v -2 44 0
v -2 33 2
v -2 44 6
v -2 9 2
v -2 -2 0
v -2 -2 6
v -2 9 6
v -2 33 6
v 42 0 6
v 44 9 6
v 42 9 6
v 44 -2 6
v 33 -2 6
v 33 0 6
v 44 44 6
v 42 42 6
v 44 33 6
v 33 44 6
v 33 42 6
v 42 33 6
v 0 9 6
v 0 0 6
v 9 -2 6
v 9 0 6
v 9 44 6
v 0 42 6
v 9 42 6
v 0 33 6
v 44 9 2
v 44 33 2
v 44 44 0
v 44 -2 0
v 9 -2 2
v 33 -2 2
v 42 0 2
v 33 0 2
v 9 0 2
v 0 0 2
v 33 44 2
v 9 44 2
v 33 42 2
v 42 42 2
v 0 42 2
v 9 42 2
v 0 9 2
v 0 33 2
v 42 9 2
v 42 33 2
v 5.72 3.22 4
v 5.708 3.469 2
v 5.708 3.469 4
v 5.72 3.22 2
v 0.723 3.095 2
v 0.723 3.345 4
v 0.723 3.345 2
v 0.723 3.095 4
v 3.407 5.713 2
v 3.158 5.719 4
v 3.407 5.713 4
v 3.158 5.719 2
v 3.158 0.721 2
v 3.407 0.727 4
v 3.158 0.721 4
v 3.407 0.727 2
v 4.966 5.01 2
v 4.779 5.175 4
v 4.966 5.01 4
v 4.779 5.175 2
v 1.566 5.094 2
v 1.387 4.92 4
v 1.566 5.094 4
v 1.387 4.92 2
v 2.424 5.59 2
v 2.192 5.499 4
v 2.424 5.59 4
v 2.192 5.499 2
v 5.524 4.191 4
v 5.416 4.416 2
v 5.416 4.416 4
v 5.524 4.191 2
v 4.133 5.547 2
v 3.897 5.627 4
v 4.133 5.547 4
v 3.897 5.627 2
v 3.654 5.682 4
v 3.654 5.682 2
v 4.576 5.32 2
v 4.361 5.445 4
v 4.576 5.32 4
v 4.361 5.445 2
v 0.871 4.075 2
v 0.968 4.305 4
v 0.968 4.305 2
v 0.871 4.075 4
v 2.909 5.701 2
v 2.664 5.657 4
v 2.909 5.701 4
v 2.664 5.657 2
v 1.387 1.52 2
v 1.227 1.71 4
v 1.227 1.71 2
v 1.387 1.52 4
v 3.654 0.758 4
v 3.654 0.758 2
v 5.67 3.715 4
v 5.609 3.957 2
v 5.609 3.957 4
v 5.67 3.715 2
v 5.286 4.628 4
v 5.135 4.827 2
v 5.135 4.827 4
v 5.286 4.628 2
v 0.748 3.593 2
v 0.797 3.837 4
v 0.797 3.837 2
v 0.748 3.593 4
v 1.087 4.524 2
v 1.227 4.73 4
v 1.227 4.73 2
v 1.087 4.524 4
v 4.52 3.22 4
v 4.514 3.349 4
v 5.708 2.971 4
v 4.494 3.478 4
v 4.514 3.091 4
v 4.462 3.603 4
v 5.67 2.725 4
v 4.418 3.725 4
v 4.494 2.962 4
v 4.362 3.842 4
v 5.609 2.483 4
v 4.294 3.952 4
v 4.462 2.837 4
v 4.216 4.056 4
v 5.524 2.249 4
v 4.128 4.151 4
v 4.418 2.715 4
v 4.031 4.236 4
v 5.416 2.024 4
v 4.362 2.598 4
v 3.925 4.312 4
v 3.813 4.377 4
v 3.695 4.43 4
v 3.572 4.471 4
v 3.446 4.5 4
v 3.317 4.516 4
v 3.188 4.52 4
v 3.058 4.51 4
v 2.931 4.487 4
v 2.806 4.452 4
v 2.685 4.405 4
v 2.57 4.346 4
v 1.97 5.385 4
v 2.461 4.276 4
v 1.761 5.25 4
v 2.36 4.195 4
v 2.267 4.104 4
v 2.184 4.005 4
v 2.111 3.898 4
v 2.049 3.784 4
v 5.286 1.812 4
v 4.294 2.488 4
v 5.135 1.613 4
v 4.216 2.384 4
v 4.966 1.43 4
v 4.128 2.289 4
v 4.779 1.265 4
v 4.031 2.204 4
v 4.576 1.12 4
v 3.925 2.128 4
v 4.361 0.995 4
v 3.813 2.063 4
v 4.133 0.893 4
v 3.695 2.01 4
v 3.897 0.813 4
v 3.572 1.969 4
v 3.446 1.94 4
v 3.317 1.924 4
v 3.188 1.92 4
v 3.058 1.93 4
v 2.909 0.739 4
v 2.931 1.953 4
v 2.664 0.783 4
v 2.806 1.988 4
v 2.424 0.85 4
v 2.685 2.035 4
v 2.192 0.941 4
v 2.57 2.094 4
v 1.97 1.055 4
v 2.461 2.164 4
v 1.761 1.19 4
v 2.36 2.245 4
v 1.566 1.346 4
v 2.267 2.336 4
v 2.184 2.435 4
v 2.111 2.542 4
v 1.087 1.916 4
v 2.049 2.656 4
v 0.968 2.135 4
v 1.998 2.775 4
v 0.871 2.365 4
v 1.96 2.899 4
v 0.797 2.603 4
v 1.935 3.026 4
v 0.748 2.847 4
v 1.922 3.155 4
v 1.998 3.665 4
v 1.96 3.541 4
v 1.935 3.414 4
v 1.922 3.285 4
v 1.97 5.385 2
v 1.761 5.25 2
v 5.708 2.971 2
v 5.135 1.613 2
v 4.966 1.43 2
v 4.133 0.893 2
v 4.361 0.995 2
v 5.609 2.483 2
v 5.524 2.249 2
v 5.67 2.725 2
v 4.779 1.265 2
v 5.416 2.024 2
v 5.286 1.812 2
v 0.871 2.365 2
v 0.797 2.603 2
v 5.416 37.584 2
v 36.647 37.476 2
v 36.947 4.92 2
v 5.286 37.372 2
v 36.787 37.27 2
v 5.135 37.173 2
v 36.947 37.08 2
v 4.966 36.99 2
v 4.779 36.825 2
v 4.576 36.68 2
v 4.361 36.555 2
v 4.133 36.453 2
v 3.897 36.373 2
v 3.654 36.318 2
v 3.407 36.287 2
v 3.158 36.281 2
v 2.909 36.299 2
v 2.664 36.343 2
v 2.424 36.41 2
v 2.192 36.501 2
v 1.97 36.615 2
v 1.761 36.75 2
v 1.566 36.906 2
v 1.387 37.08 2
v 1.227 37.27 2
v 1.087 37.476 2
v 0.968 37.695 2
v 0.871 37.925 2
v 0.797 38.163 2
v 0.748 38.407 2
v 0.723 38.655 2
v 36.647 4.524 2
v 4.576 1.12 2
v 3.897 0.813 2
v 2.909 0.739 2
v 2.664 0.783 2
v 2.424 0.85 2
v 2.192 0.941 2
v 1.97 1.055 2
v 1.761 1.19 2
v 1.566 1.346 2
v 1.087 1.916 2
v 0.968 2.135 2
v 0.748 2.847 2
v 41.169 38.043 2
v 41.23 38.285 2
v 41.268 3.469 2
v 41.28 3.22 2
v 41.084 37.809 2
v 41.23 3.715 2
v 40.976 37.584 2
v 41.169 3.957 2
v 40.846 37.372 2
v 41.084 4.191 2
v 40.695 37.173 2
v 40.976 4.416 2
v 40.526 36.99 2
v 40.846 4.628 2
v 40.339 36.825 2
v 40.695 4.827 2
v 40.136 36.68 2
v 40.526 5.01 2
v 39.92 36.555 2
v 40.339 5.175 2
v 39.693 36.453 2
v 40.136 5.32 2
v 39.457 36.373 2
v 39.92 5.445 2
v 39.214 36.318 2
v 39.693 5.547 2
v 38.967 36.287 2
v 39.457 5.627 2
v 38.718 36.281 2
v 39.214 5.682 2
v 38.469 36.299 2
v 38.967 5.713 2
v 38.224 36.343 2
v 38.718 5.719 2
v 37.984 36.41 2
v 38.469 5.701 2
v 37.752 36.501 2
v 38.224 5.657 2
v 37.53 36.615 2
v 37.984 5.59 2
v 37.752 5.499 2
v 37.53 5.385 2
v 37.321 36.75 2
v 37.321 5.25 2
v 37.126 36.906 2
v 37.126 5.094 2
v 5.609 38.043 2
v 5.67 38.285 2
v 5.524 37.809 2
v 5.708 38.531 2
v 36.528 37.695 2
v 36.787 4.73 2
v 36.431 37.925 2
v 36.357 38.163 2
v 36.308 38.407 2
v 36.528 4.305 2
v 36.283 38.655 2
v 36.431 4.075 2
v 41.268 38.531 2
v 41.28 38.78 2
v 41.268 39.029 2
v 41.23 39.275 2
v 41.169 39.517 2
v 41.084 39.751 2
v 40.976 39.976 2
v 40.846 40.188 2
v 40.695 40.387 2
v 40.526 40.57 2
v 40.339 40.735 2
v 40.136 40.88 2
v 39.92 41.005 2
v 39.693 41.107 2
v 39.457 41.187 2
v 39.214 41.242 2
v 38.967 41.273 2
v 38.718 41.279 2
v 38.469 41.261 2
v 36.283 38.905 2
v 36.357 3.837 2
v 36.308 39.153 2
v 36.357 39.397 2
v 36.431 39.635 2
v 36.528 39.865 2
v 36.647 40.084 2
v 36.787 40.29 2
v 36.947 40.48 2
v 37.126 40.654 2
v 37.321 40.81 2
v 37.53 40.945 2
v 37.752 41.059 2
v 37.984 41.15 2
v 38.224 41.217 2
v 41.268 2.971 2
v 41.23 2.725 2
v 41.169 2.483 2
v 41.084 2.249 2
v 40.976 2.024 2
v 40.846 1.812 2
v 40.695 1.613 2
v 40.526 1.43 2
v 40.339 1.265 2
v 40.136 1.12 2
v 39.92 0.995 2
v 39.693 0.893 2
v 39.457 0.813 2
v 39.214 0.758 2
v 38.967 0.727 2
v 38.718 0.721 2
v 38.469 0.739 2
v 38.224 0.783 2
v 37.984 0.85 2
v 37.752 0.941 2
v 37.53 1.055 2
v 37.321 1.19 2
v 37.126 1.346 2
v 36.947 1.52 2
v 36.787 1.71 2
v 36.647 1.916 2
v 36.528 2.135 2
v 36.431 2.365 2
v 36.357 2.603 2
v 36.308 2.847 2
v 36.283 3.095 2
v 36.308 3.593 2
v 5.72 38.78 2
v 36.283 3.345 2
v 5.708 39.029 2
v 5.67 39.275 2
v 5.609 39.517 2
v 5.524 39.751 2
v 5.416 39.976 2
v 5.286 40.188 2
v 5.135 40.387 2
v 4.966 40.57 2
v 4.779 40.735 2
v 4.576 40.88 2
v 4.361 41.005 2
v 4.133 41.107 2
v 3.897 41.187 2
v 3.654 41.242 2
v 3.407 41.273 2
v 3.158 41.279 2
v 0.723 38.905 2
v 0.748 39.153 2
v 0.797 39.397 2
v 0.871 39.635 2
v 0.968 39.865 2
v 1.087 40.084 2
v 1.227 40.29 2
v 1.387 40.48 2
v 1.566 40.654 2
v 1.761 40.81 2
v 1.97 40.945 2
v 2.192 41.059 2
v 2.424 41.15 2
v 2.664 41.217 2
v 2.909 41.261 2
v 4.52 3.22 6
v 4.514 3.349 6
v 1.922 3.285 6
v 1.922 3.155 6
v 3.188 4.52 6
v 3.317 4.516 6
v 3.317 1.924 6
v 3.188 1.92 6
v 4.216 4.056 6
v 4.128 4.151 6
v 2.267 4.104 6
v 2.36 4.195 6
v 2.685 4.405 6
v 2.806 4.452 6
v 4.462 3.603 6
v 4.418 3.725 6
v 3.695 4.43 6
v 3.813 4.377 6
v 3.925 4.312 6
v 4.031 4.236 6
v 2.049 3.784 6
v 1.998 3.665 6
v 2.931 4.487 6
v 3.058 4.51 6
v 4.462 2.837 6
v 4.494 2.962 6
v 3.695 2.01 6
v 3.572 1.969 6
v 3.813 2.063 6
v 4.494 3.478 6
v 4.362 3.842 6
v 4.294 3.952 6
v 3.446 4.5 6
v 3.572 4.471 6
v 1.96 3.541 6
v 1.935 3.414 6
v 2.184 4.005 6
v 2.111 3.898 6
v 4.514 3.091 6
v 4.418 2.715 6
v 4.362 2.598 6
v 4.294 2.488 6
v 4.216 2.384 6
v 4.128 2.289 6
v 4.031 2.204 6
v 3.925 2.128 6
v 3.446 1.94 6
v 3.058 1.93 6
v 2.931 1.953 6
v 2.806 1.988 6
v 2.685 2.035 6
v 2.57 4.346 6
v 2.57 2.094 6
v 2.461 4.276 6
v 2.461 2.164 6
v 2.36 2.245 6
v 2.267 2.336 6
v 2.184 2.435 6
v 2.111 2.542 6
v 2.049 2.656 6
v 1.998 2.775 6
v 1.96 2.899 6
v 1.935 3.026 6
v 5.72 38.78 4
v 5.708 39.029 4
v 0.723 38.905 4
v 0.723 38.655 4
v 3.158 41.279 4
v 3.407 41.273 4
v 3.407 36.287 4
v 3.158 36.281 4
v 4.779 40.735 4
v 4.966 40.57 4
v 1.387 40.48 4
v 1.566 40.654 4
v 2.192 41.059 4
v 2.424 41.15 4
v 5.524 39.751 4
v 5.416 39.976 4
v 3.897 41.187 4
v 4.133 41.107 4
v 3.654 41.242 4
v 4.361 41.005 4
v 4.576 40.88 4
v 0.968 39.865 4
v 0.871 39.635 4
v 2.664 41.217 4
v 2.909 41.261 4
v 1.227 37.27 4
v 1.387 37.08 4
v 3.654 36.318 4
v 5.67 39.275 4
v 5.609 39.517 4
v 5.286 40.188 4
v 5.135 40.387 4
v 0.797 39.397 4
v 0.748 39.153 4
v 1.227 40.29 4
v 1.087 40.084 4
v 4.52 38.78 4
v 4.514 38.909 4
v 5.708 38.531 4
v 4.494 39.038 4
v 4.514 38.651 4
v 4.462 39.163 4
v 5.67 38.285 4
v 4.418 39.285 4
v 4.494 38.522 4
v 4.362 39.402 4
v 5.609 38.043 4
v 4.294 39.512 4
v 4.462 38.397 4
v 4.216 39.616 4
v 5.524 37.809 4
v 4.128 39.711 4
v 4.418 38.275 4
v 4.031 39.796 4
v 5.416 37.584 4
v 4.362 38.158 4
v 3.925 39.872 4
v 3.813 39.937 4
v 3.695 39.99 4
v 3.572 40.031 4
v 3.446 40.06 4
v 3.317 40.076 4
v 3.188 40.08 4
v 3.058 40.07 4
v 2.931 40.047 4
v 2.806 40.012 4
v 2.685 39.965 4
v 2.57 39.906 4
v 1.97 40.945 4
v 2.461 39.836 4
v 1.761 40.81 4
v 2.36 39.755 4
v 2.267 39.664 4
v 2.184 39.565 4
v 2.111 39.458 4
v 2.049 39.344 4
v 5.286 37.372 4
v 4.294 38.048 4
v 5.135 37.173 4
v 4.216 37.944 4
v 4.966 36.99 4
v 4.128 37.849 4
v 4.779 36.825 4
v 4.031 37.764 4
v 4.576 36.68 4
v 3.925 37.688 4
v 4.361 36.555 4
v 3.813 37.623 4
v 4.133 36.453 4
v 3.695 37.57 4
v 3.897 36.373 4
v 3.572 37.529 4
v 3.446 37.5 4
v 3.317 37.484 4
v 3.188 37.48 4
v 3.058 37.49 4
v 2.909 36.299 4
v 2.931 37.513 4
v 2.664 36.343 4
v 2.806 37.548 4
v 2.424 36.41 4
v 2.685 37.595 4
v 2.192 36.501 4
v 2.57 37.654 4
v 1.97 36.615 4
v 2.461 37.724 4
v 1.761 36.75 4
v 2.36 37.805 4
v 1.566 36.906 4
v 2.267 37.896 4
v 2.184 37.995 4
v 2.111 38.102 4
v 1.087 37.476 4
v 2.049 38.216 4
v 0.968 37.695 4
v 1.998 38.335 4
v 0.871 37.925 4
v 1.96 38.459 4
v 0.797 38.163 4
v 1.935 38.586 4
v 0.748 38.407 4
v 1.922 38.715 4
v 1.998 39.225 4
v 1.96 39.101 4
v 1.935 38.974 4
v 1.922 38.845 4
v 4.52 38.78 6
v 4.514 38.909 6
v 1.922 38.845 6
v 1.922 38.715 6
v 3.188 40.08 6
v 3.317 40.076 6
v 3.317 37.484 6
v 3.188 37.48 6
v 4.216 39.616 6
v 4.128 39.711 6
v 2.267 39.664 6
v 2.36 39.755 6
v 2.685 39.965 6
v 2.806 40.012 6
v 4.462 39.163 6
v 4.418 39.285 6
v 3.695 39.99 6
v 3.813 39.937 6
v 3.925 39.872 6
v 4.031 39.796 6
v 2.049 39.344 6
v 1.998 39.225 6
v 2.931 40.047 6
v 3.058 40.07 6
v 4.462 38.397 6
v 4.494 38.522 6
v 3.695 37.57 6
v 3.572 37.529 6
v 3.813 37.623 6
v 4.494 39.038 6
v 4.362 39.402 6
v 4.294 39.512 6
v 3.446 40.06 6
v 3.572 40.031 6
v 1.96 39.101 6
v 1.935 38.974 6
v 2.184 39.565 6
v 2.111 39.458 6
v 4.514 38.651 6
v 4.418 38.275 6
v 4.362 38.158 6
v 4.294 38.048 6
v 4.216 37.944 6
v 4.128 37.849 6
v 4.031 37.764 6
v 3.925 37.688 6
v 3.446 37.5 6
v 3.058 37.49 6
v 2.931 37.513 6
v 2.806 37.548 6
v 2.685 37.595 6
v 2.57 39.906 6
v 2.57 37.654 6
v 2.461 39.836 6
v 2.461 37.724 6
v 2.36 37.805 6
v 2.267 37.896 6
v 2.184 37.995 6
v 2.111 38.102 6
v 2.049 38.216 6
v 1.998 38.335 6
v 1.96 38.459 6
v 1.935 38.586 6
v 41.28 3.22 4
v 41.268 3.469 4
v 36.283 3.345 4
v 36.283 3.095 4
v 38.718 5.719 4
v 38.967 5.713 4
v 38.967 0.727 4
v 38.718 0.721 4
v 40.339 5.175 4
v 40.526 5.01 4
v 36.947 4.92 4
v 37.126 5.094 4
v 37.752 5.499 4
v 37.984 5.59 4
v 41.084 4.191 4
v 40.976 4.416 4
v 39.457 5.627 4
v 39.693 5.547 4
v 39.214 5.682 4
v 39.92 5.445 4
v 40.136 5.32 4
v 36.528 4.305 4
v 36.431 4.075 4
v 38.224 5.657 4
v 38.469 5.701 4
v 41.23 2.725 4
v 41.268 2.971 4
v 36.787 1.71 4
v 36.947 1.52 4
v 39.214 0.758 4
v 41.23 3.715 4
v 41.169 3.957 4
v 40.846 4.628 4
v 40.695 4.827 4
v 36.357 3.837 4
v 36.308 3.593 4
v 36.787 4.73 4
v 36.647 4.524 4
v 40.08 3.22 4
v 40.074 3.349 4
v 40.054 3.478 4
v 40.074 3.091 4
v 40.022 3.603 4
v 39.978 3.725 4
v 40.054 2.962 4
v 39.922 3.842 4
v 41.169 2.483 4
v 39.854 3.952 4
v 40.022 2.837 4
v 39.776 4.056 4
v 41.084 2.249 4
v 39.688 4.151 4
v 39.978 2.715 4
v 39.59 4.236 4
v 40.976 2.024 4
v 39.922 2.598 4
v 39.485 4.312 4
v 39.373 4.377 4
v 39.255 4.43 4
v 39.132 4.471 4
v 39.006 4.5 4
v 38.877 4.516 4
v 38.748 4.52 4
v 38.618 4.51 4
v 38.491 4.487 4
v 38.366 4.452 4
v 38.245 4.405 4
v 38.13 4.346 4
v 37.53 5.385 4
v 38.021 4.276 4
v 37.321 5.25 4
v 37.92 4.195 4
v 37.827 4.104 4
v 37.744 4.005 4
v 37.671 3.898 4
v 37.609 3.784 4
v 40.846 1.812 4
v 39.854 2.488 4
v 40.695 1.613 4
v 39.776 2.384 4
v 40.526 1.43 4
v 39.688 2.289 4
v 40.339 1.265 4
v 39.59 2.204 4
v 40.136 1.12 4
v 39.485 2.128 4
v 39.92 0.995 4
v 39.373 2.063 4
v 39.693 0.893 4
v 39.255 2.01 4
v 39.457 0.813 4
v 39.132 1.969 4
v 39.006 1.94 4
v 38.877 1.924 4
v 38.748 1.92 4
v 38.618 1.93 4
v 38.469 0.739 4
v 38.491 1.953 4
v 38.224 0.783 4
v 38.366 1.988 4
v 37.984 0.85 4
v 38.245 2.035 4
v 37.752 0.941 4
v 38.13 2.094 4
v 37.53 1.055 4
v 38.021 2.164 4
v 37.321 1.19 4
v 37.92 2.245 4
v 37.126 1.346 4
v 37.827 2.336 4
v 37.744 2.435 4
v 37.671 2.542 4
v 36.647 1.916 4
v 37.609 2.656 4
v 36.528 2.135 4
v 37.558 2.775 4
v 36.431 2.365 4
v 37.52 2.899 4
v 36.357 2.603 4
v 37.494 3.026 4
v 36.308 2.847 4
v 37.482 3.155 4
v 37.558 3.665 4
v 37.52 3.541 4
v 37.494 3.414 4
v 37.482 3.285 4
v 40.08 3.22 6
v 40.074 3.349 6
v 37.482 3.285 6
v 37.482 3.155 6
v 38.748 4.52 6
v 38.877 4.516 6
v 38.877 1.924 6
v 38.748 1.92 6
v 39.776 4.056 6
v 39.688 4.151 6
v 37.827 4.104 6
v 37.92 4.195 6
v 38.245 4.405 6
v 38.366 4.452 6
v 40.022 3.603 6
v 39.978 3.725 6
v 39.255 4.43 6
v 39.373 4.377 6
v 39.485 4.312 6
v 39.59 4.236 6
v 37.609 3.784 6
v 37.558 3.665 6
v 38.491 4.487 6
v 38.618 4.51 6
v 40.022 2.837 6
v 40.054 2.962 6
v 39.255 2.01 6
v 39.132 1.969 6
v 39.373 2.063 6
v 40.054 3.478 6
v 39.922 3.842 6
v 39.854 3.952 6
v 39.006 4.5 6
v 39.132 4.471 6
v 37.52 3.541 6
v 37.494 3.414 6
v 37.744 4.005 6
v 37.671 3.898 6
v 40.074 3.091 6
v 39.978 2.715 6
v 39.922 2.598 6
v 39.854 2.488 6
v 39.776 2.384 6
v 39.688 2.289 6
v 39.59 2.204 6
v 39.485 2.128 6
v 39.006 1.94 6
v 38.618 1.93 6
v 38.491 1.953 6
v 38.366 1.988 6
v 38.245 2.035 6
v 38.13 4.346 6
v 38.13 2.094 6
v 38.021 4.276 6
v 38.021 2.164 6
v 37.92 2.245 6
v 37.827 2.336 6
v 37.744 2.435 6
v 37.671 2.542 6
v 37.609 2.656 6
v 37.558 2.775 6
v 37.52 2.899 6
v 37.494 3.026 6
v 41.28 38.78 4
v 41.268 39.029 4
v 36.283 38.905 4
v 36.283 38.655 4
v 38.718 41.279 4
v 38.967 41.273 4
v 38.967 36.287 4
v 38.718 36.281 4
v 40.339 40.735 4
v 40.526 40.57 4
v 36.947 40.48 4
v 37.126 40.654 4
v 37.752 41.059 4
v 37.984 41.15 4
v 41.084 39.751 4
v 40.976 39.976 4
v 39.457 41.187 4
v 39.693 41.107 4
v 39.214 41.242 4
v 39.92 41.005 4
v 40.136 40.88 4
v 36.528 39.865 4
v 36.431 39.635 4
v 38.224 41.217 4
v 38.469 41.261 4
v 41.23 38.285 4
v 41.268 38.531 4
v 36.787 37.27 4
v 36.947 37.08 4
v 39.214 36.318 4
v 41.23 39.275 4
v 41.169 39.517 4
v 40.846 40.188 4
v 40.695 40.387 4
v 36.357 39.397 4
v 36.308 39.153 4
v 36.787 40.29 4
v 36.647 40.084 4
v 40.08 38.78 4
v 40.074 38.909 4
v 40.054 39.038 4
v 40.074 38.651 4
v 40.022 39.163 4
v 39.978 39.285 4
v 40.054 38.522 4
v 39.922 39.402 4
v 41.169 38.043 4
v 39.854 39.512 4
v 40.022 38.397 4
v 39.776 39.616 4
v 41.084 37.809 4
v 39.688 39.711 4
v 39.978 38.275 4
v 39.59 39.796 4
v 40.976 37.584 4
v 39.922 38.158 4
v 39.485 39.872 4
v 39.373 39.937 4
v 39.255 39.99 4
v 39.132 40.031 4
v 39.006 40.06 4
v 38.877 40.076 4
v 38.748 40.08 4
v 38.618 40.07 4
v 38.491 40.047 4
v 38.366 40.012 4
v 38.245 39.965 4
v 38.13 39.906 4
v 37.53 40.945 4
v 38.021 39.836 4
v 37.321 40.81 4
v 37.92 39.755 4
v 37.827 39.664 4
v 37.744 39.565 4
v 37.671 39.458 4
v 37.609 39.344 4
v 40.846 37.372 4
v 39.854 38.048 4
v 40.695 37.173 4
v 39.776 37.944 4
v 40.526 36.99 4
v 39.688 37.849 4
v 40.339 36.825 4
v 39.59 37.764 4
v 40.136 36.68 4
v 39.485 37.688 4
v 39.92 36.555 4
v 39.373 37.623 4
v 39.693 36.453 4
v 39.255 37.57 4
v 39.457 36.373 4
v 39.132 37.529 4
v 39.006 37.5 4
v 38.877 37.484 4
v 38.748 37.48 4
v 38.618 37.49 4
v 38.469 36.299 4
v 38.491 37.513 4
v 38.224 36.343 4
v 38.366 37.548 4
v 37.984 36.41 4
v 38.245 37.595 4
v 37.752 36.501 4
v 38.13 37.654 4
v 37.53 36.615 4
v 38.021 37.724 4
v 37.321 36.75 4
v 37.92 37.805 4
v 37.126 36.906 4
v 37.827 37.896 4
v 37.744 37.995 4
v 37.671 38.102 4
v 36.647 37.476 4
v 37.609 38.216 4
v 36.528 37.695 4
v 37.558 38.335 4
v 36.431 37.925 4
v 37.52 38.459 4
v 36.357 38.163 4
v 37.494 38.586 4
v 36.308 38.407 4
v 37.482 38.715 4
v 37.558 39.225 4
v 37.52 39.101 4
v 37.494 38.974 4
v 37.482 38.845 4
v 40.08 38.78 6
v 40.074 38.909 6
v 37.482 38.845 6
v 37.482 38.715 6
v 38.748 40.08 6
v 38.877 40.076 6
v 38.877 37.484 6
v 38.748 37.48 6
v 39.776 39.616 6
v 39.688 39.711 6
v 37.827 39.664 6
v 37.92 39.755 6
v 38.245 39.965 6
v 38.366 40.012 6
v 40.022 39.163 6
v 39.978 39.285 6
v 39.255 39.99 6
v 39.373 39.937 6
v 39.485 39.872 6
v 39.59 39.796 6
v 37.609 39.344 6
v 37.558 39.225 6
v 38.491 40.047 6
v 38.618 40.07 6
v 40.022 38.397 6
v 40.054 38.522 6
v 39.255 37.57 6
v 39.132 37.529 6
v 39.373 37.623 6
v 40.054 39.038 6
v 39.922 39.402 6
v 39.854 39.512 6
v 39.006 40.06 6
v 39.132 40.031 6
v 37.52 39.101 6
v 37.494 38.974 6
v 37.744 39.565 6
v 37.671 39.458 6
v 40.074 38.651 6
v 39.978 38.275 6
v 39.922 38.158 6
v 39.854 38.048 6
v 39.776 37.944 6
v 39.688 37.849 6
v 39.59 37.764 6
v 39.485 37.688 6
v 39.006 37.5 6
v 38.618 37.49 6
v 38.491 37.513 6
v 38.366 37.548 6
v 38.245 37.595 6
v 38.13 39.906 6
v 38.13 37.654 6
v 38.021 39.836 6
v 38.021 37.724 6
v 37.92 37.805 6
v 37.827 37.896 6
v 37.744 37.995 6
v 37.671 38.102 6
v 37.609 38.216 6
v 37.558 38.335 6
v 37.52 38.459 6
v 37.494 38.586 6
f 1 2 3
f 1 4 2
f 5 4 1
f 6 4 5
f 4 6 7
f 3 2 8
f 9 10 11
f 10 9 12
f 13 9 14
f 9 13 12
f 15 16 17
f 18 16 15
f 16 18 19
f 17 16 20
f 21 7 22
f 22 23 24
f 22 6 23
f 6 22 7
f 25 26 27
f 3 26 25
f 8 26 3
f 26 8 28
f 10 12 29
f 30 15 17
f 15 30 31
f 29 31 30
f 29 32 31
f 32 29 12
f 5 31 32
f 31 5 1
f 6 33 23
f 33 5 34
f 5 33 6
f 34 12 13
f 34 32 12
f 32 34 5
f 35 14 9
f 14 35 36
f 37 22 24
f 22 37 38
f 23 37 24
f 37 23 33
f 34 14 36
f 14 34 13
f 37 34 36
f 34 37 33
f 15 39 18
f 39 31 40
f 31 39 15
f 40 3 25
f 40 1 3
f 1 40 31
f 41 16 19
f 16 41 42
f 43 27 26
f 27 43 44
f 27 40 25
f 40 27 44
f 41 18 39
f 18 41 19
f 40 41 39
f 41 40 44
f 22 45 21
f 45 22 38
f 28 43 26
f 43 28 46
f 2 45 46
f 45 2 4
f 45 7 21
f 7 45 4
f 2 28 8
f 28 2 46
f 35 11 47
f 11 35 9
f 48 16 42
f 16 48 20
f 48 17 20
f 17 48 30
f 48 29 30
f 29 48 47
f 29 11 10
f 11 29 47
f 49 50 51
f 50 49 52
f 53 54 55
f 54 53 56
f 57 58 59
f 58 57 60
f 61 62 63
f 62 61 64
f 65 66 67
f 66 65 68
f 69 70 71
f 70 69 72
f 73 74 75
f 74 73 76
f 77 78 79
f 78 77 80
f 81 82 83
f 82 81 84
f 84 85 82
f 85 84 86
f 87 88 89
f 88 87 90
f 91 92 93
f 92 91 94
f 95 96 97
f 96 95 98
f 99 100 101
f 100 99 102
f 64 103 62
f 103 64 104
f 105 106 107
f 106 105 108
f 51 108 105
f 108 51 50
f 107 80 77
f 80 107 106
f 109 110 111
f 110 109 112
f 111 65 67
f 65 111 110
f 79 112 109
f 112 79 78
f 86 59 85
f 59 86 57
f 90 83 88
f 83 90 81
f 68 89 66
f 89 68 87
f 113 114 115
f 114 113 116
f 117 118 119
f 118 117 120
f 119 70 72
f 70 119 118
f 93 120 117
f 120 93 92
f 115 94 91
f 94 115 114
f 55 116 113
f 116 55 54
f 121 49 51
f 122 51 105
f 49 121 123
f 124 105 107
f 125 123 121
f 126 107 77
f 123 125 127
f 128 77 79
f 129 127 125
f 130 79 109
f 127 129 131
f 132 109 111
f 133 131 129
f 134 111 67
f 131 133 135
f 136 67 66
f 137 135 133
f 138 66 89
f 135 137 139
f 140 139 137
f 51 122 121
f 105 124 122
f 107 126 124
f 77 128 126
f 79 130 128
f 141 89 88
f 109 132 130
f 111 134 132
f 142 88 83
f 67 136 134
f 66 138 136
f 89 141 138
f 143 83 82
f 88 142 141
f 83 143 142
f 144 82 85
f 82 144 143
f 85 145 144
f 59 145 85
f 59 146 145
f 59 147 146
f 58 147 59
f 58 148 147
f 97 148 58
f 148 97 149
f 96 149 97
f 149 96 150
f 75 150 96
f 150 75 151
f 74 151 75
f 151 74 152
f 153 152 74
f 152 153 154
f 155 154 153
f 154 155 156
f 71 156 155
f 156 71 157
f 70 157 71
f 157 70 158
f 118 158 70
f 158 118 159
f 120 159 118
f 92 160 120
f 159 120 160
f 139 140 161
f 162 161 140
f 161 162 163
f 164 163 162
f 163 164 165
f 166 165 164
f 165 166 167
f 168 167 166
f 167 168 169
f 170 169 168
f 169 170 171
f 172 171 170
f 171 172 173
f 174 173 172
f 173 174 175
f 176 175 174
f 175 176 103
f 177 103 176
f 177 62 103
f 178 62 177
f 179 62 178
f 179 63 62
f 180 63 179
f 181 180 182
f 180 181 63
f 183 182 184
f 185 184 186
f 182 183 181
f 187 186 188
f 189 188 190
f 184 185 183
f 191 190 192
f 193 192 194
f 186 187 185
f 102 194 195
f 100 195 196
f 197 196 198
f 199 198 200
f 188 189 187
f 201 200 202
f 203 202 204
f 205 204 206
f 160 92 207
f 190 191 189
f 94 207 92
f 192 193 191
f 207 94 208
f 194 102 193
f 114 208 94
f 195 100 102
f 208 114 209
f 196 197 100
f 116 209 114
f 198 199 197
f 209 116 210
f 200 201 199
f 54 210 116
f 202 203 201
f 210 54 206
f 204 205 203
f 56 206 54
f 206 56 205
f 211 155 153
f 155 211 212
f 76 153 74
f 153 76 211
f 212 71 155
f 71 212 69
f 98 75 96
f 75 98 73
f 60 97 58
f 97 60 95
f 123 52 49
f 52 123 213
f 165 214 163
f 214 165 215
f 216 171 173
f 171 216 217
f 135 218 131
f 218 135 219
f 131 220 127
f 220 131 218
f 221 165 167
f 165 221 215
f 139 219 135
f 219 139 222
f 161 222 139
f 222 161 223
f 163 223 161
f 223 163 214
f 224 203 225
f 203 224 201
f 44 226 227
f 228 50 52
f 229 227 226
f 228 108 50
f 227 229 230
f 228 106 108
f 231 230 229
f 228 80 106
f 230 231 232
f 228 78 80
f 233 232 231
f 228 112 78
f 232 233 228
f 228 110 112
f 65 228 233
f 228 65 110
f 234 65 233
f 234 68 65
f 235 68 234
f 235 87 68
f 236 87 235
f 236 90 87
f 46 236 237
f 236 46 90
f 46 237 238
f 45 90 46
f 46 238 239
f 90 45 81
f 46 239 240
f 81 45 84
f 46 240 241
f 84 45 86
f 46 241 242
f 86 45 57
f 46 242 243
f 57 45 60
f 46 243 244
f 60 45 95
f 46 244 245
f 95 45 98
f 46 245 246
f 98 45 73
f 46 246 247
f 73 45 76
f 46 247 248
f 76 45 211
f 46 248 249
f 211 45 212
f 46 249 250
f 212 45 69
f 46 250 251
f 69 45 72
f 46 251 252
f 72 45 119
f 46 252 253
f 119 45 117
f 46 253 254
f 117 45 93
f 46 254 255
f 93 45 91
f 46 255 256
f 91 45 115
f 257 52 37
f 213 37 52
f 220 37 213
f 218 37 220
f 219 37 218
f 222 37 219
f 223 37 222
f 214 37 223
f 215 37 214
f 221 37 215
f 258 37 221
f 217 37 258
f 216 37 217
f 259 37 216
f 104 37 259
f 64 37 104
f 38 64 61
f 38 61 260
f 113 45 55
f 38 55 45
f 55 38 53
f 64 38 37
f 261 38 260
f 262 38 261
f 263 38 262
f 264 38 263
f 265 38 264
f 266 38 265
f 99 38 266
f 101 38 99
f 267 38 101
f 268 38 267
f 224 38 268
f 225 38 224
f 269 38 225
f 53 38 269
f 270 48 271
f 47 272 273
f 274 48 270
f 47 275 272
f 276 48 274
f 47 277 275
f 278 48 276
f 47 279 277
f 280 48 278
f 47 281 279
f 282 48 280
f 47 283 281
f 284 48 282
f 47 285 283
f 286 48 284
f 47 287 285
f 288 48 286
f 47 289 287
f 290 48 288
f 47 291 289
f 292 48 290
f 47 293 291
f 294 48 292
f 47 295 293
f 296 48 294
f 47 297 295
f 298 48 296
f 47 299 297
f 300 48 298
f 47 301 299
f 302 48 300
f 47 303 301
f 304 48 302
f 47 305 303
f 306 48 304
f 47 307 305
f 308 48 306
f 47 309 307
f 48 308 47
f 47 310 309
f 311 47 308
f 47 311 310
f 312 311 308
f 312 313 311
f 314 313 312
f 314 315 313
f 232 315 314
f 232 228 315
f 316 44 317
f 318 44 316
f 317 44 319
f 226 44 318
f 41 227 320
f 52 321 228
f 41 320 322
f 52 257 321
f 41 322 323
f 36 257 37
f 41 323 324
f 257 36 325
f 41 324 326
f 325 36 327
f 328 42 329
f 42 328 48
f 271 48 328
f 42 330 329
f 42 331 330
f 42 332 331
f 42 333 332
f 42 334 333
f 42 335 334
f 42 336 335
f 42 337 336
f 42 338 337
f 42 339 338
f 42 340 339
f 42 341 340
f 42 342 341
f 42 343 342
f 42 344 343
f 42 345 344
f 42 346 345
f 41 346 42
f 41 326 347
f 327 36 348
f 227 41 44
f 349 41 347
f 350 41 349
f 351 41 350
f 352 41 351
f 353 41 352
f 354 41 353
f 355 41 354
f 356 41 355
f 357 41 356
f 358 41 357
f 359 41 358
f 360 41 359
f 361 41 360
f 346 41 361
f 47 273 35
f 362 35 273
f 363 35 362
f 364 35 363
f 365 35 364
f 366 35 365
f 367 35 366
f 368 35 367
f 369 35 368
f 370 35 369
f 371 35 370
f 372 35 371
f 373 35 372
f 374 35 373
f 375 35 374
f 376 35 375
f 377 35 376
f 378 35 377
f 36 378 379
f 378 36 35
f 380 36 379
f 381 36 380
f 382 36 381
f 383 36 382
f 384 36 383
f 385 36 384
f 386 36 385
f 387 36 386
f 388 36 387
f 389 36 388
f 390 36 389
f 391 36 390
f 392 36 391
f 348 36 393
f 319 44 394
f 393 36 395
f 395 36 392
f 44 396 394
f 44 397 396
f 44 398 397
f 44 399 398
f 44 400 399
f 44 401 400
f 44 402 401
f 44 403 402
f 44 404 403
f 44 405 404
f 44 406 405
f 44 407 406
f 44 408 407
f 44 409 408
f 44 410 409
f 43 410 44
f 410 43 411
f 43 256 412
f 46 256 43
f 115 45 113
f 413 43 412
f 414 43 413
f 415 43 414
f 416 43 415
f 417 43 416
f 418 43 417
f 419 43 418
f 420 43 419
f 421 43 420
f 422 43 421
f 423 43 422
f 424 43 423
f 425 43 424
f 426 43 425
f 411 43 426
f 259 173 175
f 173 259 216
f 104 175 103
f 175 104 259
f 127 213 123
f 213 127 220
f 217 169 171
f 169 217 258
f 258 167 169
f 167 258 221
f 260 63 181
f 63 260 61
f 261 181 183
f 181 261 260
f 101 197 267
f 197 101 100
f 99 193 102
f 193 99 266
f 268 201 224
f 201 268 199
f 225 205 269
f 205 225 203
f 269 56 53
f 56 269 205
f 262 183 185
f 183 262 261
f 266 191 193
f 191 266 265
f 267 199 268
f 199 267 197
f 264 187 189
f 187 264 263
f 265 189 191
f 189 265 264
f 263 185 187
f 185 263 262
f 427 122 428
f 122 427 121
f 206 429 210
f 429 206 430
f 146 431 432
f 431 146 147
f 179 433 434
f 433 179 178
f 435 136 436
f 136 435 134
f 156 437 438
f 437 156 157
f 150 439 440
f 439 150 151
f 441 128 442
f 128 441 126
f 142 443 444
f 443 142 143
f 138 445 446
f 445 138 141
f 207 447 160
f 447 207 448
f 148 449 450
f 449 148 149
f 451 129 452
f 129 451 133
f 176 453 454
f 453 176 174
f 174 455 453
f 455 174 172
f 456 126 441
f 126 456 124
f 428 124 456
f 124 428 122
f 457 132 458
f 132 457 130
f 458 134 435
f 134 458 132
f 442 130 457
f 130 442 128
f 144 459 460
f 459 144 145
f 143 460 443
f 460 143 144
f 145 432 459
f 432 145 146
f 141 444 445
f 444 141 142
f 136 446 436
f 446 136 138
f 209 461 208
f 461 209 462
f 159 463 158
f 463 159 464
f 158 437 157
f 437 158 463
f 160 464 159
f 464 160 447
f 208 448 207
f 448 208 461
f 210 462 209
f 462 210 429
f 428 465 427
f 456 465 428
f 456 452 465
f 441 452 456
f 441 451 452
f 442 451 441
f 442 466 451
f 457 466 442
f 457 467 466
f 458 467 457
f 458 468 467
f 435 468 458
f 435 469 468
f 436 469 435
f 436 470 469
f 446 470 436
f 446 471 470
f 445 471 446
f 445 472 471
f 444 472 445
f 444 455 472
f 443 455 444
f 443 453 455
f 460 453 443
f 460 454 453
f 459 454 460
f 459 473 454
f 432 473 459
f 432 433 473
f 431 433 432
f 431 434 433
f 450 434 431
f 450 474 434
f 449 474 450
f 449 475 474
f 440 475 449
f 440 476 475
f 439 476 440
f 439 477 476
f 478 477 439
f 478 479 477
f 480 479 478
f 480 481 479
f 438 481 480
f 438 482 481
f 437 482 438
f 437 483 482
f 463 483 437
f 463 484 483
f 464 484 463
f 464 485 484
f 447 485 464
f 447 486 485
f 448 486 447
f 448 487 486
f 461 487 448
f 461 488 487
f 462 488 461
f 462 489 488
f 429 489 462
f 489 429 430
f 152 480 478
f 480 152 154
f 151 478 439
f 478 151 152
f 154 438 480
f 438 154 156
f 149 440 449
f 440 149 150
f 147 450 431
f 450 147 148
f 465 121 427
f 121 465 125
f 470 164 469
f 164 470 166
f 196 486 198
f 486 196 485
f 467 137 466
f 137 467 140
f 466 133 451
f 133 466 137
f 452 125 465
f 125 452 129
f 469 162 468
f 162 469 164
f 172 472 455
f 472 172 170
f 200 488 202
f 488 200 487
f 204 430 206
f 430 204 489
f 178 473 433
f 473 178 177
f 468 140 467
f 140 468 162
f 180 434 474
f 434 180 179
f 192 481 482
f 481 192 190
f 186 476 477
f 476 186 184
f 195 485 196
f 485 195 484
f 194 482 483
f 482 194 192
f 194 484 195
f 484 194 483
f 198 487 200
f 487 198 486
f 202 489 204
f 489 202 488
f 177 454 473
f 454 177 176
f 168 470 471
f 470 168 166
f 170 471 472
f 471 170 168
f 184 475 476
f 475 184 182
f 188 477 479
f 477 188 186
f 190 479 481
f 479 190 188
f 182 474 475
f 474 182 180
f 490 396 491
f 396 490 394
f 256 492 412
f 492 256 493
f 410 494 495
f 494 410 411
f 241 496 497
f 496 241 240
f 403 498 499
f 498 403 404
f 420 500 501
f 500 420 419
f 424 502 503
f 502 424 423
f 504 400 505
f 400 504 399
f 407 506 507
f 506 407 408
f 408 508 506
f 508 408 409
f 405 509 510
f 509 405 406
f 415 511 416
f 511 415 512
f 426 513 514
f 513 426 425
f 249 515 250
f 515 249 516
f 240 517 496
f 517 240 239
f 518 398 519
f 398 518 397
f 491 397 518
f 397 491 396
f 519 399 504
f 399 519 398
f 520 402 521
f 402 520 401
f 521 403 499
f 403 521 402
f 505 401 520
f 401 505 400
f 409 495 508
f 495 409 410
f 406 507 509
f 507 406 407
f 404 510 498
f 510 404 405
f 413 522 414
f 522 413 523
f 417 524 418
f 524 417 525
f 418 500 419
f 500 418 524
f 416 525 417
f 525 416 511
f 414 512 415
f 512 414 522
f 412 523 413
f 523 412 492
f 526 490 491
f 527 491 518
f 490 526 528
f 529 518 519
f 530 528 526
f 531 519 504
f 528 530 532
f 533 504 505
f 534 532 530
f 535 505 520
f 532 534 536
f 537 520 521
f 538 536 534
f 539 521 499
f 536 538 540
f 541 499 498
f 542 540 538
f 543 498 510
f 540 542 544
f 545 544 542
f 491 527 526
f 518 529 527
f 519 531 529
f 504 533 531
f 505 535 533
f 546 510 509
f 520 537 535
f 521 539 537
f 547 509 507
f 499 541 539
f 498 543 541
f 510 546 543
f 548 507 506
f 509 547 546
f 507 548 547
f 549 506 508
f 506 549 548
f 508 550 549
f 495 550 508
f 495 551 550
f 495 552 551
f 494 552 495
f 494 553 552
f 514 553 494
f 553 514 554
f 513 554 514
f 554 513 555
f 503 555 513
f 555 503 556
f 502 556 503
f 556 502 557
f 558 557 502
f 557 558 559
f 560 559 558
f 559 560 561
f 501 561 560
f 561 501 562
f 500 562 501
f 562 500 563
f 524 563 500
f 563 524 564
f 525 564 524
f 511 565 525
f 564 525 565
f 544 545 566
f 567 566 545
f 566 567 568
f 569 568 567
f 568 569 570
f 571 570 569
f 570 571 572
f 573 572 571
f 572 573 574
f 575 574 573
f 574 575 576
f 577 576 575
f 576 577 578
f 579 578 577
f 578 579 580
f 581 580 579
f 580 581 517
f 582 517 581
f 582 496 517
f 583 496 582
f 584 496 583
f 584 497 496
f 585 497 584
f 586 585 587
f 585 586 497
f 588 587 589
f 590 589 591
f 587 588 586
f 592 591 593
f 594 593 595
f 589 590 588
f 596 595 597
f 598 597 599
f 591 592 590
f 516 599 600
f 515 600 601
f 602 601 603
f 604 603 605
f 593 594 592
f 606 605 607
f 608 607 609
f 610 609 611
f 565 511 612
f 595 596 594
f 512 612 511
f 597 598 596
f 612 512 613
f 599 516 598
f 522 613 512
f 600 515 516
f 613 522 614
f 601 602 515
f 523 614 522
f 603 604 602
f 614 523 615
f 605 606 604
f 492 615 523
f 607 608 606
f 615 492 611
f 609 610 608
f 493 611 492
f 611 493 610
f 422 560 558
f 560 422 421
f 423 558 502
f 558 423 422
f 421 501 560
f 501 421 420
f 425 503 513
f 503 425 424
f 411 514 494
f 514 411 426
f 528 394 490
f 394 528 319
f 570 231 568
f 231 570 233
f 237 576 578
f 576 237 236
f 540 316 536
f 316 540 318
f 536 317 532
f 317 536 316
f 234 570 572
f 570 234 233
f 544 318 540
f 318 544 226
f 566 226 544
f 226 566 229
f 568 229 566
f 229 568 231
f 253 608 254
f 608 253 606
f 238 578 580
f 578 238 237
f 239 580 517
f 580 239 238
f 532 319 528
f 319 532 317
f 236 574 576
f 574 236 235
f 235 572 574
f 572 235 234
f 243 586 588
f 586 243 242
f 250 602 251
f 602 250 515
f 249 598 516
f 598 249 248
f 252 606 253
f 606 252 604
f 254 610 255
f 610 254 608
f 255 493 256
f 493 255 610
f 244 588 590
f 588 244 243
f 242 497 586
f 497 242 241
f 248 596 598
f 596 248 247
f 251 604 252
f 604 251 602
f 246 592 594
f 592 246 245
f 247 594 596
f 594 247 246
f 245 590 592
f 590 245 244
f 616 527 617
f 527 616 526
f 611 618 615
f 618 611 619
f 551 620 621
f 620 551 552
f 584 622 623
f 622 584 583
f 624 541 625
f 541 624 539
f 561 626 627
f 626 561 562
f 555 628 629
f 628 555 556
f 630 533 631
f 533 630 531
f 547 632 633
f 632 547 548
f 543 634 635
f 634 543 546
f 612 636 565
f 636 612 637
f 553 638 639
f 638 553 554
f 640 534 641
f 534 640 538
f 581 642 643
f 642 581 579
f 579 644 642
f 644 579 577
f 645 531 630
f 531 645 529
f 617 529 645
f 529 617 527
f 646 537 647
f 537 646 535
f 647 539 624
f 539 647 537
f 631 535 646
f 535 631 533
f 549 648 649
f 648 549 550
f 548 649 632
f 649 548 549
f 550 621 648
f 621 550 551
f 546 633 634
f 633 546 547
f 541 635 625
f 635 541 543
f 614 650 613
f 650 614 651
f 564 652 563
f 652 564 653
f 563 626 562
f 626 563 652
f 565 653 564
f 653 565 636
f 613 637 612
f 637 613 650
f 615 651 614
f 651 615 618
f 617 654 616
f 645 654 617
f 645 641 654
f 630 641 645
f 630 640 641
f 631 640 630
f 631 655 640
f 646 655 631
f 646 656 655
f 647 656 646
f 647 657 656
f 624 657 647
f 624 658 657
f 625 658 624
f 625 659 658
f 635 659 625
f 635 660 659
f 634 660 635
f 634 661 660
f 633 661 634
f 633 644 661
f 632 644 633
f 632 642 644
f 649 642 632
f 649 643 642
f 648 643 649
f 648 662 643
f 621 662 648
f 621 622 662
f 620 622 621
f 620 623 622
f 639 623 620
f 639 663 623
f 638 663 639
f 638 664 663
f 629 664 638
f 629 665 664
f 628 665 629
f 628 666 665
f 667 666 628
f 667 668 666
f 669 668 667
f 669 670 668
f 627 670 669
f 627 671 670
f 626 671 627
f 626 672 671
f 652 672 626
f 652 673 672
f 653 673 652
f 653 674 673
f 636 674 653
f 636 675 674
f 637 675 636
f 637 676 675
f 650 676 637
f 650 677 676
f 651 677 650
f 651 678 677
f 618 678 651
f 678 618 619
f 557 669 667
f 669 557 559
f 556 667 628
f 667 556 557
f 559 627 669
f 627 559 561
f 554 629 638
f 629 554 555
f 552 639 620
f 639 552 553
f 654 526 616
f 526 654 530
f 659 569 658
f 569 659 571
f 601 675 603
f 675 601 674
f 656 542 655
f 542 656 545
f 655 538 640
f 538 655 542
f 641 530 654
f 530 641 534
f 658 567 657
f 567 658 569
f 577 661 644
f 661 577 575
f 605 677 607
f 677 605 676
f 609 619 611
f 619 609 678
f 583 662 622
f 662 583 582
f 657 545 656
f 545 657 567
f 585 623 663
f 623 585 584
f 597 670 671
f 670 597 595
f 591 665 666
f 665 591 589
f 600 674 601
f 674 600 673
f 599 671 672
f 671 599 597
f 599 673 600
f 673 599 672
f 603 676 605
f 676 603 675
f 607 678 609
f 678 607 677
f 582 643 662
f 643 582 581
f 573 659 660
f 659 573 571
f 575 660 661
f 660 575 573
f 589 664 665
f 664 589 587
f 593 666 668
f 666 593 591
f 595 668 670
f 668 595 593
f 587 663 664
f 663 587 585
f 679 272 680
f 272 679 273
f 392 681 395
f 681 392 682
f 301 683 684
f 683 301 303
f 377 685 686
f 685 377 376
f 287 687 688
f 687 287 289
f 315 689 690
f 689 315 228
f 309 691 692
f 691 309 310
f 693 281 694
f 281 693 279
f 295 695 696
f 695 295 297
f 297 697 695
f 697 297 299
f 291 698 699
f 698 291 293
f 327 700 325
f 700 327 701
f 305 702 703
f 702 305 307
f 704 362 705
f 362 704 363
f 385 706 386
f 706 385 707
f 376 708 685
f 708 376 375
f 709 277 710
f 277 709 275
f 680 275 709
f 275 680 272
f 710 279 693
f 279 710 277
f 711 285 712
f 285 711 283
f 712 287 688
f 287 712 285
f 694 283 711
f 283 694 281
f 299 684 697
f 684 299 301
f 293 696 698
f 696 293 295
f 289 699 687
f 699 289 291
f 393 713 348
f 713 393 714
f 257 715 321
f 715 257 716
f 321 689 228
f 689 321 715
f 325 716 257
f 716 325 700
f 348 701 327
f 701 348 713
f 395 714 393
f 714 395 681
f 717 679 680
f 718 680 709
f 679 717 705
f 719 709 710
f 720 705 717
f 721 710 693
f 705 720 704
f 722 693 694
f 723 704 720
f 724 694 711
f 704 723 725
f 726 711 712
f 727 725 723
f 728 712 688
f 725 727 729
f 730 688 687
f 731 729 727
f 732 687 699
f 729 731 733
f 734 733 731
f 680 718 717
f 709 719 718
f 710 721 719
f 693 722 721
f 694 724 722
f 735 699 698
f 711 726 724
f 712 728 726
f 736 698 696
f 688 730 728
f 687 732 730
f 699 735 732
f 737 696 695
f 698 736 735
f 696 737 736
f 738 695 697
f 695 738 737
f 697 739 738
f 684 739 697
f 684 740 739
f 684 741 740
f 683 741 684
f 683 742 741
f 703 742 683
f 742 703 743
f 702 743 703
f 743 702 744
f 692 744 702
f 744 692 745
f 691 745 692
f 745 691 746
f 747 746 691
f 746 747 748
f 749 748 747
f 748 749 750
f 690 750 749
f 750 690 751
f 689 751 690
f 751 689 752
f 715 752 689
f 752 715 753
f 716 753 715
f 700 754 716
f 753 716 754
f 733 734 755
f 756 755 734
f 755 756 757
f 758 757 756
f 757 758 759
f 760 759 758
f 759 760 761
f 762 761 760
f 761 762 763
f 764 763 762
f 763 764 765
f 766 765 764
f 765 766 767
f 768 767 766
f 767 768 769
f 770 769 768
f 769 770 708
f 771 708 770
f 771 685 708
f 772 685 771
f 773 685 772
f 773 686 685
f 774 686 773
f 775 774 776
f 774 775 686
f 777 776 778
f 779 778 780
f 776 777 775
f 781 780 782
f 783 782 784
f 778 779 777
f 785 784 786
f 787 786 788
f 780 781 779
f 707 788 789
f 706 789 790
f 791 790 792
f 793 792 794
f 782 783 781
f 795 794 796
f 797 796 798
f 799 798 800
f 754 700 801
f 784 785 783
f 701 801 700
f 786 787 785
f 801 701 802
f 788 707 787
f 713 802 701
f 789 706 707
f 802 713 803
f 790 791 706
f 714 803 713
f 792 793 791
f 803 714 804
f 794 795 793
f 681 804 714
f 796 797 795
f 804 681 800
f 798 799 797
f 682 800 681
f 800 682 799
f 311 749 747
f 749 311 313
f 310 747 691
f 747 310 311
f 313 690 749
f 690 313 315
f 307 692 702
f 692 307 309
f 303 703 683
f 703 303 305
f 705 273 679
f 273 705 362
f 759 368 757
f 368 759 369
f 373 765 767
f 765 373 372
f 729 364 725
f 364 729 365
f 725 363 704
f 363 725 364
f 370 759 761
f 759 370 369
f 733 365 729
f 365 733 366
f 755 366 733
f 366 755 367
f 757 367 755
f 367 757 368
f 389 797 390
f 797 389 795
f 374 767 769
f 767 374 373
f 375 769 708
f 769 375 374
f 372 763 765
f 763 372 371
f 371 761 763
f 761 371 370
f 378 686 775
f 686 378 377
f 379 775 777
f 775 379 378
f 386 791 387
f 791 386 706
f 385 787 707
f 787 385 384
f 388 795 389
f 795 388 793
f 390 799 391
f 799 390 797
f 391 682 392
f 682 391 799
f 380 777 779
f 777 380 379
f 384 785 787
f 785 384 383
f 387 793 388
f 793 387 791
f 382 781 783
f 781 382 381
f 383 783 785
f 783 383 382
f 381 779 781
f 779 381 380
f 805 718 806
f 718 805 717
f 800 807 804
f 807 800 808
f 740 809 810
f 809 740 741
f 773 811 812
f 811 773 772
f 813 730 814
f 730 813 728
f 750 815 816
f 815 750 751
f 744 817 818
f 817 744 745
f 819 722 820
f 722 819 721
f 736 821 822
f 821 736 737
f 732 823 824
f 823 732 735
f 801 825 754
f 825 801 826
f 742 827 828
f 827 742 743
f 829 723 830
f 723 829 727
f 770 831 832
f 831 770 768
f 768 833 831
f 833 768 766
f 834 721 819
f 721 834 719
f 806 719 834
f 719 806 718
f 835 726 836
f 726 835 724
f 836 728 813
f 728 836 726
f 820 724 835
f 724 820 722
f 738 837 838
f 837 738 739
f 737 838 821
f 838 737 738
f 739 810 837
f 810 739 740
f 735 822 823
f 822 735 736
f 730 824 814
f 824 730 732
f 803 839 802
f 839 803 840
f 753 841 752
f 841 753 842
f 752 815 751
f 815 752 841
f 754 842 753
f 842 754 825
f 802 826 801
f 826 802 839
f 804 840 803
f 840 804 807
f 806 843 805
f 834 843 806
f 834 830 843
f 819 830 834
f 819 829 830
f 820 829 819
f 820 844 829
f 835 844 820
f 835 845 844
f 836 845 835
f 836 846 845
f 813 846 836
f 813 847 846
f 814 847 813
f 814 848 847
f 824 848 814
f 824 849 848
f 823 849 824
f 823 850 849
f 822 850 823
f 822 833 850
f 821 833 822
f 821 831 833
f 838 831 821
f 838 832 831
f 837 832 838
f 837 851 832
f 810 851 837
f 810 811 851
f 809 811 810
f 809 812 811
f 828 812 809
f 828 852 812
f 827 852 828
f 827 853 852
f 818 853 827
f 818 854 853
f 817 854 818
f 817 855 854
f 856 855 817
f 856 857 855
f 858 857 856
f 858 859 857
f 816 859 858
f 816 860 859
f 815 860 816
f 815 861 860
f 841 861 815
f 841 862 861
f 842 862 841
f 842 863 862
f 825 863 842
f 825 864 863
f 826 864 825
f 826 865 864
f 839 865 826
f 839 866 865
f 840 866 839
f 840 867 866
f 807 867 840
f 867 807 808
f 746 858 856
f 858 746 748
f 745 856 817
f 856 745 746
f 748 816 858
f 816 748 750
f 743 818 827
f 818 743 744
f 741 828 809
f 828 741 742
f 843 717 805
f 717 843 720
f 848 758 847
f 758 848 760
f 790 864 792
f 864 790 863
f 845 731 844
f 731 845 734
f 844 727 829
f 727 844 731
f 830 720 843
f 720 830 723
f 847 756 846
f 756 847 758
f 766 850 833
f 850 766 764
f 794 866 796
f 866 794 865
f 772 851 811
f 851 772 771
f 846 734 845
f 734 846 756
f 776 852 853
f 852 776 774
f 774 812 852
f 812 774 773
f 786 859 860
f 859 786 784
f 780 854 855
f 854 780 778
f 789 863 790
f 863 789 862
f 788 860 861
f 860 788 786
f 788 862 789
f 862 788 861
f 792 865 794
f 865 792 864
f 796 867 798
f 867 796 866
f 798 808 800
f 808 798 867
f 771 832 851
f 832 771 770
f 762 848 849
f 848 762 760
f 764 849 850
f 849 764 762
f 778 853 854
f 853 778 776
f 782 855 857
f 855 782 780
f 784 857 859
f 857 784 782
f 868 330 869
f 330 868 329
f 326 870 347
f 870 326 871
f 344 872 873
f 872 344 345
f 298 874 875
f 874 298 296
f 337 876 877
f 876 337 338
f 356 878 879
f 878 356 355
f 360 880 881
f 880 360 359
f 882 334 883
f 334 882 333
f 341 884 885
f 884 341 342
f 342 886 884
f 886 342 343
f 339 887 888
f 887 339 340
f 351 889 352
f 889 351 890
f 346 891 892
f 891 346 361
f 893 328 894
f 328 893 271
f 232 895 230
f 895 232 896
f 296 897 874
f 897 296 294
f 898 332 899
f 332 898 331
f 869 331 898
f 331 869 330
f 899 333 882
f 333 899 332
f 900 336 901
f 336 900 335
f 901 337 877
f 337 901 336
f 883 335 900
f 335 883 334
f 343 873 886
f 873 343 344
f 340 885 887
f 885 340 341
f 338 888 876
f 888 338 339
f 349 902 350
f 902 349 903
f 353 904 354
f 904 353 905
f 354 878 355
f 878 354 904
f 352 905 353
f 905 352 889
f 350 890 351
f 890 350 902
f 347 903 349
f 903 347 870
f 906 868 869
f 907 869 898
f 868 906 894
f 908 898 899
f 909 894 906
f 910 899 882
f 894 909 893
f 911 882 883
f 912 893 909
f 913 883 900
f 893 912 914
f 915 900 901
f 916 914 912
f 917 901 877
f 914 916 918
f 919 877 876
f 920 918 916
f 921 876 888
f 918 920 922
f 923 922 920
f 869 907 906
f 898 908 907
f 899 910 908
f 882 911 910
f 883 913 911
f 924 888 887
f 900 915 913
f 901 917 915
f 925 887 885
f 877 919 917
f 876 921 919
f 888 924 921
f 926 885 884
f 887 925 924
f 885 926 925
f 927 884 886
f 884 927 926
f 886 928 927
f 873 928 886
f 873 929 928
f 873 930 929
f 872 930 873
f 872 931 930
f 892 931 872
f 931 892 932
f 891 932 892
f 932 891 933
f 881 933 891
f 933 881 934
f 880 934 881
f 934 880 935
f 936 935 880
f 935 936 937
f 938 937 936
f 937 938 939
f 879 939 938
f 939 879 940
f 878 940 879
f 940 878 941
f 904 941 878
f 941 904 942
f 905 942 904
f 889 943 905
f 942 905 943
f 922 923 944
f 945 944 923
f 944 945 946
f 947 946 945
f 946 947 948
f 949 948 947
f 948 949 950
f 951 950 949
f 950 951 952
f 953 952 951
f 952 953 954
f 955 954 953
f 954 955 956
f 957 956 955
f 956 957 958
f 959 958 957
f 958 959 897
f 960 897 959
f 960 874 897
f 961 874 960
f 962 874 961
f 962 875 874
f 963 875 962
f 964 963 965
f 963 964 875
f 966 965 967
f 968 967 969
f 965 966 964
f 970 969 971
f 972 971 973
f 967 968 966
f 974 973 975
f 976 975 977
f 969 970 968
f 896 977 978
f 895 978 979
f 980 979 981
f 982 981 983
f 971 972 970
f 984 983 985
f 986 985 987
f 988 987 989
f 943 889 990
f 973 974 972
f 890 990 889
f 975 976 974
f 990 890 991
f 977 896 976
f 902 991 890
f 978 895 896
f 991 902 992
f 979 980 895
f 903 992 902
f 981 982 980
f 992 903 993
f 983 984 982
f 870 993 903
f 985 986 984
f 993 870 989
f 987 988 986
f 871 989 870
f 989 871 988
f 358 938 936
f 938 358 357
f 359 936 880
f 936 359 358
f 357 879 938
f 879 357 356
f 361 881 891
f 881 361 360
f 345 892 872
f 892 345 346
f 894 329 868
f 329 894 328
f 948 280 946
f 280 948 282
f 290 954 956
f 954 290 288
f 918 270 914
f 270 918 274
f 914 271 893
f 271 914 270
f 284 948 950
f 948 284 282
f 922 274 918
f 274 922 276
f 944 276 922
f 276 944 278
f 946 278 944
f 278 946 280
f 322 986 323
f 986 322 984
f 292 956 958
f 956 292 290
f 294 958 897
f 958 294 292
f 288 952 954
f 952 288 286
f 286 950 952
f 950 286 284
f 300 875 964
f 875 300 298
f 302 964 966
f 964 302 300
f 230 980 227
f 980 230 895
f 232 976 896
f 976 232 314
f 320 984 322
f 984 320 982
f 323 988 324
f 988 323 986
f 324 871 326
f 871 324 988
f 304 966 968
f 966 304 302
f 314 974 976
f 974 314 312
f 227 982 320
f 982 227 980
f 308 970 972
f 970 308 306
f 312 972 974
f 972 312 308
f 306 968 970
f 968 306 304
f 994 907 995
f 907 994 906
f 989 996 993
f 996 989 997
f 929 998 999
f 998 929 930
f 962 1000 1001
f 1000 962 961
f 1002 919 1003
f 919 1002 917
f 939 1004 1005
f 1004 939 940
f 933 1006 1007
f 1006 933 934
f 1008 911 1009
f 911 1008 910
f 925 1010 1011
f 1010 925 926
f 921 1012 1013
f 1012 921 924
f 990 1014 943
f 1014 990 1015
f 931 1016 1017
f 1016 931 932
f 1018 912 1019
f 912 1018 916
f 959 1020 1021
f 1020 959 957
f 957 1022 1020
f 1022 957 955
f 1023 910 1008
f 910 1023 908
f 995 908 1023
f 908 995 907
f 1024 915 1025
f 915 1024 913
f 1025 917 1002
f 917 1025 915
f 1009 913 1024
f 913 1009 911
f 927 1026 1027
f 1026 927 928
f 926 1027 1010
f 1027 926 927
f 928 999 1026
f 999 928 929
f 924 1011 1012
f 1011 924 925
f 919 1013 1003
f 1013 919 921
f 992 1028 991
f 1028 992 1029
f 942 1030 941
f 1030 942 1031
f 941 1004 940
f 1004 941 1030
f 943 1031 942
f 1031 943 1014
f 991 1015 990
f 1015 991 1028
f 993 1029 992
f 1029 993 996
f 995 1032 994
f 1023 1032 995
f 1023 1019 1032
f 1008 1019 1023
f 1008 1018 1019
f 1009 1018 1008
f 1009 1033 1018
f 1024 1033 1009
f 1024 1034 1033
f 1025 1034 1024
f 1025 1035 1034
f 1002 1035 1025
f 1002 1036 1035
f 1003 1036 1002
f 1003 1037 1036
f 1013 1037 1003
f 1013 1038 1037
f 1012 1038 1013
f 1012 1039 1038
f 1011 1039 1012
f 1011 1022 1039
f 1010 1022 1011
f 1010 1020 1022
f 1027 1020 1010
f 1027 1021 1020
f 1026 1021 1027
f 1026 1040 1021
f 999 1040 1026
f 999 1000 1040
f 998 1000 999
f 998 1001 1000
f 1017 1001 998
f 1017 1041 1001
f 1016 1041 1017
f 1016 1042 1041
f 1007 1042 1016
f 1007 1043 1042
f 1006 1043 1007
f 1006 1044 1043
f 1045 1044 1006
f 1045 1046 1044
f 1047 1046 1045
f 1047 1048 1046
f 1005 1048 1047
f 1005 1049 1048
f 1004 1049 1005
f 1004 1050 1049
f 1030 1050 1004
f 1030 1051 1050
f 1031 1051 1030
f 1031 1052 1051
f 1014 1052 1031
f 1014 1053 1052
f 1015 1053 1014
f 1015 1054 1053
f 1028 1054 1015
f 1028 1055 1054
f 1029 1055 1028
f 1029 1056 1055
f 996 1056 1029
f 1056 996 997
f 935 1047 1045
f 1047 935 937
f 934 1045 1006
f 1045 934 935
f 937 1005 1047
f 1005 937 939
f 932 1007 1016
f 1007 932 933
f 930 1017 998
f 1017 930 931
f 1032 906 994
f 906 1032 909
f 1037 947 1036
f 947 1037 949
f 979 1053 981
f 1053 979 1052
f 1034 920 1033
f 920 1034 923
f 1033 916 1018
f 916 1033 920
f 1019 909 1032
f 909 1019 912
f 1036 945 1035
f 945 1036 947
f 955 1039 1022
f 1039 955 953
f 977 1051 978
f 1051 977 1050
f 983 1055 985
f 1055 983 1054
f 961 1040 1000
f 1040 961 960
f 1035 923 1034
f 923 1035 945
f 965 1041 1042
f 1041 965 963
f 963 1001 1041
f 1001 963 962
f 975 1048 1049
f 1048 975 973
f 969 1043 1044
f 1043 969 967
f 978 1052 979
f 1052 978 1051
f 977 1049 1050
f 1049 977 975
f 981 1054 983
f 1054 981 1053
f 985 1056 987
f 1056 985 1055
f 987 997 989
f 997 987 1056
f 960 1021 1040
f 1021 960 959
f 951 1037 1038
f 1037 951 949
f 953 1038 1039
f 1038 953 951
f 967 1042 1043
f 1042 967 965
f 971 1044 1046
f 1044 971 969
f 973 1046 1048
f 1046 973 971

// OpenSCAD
$fn = 63;

p = 1.3;

translate([0.18,0.18,2]) {
  translate([2.54+.5,2.54+.5,0]) {
    cylinder(h = 2, r = 2.5);
    cylinder(h = 4, r = p);
  }
  translate([2.54+.5,38.1+.5,0]) {
    cylinder(h = 2, r = 2.5);
    cylinder(h = 4, r = p);
  }
  translate([38.1+.5,2.54+.5,0]) {
    cylinder(h = 2, r = 2.5);
    cylinder(h = 4, r = p);
  }
  translate([38.1+.5,38.1+.5,0]) {
    cylinder(h = 2, r = 2.5);
    cylinder(h = 4, r = p);
  }
}

translate([0,0,0]) {
  cube([42,42,2]);
}

difference() {
  translate([-2,-2,0]) {
    cube([46,2,6]);
  }
  translate([46/2-12-2,-2,2]) {
    cube([24,2,4]);
  }
}

difference() {
  translate([-2,42,0]) {
    cube([46,2,6]);
  }
  translate([46/2-12-2,42,2]) {
    cube([24,2,4]);
  }
}

difference() {
  translate([-2,-2,0]) {
    cube([2,46,6]);
  }
  translate([-2,46/2-12-2,2]) {
    #cube([2,24,4]);
  }
}

difference() {
  translate([42,-2,0]) {
    cube([2,46,6]);
  }
  translate([42,46/2-12-2,2]) {
    #cube([2,24,4]);
  }
}
